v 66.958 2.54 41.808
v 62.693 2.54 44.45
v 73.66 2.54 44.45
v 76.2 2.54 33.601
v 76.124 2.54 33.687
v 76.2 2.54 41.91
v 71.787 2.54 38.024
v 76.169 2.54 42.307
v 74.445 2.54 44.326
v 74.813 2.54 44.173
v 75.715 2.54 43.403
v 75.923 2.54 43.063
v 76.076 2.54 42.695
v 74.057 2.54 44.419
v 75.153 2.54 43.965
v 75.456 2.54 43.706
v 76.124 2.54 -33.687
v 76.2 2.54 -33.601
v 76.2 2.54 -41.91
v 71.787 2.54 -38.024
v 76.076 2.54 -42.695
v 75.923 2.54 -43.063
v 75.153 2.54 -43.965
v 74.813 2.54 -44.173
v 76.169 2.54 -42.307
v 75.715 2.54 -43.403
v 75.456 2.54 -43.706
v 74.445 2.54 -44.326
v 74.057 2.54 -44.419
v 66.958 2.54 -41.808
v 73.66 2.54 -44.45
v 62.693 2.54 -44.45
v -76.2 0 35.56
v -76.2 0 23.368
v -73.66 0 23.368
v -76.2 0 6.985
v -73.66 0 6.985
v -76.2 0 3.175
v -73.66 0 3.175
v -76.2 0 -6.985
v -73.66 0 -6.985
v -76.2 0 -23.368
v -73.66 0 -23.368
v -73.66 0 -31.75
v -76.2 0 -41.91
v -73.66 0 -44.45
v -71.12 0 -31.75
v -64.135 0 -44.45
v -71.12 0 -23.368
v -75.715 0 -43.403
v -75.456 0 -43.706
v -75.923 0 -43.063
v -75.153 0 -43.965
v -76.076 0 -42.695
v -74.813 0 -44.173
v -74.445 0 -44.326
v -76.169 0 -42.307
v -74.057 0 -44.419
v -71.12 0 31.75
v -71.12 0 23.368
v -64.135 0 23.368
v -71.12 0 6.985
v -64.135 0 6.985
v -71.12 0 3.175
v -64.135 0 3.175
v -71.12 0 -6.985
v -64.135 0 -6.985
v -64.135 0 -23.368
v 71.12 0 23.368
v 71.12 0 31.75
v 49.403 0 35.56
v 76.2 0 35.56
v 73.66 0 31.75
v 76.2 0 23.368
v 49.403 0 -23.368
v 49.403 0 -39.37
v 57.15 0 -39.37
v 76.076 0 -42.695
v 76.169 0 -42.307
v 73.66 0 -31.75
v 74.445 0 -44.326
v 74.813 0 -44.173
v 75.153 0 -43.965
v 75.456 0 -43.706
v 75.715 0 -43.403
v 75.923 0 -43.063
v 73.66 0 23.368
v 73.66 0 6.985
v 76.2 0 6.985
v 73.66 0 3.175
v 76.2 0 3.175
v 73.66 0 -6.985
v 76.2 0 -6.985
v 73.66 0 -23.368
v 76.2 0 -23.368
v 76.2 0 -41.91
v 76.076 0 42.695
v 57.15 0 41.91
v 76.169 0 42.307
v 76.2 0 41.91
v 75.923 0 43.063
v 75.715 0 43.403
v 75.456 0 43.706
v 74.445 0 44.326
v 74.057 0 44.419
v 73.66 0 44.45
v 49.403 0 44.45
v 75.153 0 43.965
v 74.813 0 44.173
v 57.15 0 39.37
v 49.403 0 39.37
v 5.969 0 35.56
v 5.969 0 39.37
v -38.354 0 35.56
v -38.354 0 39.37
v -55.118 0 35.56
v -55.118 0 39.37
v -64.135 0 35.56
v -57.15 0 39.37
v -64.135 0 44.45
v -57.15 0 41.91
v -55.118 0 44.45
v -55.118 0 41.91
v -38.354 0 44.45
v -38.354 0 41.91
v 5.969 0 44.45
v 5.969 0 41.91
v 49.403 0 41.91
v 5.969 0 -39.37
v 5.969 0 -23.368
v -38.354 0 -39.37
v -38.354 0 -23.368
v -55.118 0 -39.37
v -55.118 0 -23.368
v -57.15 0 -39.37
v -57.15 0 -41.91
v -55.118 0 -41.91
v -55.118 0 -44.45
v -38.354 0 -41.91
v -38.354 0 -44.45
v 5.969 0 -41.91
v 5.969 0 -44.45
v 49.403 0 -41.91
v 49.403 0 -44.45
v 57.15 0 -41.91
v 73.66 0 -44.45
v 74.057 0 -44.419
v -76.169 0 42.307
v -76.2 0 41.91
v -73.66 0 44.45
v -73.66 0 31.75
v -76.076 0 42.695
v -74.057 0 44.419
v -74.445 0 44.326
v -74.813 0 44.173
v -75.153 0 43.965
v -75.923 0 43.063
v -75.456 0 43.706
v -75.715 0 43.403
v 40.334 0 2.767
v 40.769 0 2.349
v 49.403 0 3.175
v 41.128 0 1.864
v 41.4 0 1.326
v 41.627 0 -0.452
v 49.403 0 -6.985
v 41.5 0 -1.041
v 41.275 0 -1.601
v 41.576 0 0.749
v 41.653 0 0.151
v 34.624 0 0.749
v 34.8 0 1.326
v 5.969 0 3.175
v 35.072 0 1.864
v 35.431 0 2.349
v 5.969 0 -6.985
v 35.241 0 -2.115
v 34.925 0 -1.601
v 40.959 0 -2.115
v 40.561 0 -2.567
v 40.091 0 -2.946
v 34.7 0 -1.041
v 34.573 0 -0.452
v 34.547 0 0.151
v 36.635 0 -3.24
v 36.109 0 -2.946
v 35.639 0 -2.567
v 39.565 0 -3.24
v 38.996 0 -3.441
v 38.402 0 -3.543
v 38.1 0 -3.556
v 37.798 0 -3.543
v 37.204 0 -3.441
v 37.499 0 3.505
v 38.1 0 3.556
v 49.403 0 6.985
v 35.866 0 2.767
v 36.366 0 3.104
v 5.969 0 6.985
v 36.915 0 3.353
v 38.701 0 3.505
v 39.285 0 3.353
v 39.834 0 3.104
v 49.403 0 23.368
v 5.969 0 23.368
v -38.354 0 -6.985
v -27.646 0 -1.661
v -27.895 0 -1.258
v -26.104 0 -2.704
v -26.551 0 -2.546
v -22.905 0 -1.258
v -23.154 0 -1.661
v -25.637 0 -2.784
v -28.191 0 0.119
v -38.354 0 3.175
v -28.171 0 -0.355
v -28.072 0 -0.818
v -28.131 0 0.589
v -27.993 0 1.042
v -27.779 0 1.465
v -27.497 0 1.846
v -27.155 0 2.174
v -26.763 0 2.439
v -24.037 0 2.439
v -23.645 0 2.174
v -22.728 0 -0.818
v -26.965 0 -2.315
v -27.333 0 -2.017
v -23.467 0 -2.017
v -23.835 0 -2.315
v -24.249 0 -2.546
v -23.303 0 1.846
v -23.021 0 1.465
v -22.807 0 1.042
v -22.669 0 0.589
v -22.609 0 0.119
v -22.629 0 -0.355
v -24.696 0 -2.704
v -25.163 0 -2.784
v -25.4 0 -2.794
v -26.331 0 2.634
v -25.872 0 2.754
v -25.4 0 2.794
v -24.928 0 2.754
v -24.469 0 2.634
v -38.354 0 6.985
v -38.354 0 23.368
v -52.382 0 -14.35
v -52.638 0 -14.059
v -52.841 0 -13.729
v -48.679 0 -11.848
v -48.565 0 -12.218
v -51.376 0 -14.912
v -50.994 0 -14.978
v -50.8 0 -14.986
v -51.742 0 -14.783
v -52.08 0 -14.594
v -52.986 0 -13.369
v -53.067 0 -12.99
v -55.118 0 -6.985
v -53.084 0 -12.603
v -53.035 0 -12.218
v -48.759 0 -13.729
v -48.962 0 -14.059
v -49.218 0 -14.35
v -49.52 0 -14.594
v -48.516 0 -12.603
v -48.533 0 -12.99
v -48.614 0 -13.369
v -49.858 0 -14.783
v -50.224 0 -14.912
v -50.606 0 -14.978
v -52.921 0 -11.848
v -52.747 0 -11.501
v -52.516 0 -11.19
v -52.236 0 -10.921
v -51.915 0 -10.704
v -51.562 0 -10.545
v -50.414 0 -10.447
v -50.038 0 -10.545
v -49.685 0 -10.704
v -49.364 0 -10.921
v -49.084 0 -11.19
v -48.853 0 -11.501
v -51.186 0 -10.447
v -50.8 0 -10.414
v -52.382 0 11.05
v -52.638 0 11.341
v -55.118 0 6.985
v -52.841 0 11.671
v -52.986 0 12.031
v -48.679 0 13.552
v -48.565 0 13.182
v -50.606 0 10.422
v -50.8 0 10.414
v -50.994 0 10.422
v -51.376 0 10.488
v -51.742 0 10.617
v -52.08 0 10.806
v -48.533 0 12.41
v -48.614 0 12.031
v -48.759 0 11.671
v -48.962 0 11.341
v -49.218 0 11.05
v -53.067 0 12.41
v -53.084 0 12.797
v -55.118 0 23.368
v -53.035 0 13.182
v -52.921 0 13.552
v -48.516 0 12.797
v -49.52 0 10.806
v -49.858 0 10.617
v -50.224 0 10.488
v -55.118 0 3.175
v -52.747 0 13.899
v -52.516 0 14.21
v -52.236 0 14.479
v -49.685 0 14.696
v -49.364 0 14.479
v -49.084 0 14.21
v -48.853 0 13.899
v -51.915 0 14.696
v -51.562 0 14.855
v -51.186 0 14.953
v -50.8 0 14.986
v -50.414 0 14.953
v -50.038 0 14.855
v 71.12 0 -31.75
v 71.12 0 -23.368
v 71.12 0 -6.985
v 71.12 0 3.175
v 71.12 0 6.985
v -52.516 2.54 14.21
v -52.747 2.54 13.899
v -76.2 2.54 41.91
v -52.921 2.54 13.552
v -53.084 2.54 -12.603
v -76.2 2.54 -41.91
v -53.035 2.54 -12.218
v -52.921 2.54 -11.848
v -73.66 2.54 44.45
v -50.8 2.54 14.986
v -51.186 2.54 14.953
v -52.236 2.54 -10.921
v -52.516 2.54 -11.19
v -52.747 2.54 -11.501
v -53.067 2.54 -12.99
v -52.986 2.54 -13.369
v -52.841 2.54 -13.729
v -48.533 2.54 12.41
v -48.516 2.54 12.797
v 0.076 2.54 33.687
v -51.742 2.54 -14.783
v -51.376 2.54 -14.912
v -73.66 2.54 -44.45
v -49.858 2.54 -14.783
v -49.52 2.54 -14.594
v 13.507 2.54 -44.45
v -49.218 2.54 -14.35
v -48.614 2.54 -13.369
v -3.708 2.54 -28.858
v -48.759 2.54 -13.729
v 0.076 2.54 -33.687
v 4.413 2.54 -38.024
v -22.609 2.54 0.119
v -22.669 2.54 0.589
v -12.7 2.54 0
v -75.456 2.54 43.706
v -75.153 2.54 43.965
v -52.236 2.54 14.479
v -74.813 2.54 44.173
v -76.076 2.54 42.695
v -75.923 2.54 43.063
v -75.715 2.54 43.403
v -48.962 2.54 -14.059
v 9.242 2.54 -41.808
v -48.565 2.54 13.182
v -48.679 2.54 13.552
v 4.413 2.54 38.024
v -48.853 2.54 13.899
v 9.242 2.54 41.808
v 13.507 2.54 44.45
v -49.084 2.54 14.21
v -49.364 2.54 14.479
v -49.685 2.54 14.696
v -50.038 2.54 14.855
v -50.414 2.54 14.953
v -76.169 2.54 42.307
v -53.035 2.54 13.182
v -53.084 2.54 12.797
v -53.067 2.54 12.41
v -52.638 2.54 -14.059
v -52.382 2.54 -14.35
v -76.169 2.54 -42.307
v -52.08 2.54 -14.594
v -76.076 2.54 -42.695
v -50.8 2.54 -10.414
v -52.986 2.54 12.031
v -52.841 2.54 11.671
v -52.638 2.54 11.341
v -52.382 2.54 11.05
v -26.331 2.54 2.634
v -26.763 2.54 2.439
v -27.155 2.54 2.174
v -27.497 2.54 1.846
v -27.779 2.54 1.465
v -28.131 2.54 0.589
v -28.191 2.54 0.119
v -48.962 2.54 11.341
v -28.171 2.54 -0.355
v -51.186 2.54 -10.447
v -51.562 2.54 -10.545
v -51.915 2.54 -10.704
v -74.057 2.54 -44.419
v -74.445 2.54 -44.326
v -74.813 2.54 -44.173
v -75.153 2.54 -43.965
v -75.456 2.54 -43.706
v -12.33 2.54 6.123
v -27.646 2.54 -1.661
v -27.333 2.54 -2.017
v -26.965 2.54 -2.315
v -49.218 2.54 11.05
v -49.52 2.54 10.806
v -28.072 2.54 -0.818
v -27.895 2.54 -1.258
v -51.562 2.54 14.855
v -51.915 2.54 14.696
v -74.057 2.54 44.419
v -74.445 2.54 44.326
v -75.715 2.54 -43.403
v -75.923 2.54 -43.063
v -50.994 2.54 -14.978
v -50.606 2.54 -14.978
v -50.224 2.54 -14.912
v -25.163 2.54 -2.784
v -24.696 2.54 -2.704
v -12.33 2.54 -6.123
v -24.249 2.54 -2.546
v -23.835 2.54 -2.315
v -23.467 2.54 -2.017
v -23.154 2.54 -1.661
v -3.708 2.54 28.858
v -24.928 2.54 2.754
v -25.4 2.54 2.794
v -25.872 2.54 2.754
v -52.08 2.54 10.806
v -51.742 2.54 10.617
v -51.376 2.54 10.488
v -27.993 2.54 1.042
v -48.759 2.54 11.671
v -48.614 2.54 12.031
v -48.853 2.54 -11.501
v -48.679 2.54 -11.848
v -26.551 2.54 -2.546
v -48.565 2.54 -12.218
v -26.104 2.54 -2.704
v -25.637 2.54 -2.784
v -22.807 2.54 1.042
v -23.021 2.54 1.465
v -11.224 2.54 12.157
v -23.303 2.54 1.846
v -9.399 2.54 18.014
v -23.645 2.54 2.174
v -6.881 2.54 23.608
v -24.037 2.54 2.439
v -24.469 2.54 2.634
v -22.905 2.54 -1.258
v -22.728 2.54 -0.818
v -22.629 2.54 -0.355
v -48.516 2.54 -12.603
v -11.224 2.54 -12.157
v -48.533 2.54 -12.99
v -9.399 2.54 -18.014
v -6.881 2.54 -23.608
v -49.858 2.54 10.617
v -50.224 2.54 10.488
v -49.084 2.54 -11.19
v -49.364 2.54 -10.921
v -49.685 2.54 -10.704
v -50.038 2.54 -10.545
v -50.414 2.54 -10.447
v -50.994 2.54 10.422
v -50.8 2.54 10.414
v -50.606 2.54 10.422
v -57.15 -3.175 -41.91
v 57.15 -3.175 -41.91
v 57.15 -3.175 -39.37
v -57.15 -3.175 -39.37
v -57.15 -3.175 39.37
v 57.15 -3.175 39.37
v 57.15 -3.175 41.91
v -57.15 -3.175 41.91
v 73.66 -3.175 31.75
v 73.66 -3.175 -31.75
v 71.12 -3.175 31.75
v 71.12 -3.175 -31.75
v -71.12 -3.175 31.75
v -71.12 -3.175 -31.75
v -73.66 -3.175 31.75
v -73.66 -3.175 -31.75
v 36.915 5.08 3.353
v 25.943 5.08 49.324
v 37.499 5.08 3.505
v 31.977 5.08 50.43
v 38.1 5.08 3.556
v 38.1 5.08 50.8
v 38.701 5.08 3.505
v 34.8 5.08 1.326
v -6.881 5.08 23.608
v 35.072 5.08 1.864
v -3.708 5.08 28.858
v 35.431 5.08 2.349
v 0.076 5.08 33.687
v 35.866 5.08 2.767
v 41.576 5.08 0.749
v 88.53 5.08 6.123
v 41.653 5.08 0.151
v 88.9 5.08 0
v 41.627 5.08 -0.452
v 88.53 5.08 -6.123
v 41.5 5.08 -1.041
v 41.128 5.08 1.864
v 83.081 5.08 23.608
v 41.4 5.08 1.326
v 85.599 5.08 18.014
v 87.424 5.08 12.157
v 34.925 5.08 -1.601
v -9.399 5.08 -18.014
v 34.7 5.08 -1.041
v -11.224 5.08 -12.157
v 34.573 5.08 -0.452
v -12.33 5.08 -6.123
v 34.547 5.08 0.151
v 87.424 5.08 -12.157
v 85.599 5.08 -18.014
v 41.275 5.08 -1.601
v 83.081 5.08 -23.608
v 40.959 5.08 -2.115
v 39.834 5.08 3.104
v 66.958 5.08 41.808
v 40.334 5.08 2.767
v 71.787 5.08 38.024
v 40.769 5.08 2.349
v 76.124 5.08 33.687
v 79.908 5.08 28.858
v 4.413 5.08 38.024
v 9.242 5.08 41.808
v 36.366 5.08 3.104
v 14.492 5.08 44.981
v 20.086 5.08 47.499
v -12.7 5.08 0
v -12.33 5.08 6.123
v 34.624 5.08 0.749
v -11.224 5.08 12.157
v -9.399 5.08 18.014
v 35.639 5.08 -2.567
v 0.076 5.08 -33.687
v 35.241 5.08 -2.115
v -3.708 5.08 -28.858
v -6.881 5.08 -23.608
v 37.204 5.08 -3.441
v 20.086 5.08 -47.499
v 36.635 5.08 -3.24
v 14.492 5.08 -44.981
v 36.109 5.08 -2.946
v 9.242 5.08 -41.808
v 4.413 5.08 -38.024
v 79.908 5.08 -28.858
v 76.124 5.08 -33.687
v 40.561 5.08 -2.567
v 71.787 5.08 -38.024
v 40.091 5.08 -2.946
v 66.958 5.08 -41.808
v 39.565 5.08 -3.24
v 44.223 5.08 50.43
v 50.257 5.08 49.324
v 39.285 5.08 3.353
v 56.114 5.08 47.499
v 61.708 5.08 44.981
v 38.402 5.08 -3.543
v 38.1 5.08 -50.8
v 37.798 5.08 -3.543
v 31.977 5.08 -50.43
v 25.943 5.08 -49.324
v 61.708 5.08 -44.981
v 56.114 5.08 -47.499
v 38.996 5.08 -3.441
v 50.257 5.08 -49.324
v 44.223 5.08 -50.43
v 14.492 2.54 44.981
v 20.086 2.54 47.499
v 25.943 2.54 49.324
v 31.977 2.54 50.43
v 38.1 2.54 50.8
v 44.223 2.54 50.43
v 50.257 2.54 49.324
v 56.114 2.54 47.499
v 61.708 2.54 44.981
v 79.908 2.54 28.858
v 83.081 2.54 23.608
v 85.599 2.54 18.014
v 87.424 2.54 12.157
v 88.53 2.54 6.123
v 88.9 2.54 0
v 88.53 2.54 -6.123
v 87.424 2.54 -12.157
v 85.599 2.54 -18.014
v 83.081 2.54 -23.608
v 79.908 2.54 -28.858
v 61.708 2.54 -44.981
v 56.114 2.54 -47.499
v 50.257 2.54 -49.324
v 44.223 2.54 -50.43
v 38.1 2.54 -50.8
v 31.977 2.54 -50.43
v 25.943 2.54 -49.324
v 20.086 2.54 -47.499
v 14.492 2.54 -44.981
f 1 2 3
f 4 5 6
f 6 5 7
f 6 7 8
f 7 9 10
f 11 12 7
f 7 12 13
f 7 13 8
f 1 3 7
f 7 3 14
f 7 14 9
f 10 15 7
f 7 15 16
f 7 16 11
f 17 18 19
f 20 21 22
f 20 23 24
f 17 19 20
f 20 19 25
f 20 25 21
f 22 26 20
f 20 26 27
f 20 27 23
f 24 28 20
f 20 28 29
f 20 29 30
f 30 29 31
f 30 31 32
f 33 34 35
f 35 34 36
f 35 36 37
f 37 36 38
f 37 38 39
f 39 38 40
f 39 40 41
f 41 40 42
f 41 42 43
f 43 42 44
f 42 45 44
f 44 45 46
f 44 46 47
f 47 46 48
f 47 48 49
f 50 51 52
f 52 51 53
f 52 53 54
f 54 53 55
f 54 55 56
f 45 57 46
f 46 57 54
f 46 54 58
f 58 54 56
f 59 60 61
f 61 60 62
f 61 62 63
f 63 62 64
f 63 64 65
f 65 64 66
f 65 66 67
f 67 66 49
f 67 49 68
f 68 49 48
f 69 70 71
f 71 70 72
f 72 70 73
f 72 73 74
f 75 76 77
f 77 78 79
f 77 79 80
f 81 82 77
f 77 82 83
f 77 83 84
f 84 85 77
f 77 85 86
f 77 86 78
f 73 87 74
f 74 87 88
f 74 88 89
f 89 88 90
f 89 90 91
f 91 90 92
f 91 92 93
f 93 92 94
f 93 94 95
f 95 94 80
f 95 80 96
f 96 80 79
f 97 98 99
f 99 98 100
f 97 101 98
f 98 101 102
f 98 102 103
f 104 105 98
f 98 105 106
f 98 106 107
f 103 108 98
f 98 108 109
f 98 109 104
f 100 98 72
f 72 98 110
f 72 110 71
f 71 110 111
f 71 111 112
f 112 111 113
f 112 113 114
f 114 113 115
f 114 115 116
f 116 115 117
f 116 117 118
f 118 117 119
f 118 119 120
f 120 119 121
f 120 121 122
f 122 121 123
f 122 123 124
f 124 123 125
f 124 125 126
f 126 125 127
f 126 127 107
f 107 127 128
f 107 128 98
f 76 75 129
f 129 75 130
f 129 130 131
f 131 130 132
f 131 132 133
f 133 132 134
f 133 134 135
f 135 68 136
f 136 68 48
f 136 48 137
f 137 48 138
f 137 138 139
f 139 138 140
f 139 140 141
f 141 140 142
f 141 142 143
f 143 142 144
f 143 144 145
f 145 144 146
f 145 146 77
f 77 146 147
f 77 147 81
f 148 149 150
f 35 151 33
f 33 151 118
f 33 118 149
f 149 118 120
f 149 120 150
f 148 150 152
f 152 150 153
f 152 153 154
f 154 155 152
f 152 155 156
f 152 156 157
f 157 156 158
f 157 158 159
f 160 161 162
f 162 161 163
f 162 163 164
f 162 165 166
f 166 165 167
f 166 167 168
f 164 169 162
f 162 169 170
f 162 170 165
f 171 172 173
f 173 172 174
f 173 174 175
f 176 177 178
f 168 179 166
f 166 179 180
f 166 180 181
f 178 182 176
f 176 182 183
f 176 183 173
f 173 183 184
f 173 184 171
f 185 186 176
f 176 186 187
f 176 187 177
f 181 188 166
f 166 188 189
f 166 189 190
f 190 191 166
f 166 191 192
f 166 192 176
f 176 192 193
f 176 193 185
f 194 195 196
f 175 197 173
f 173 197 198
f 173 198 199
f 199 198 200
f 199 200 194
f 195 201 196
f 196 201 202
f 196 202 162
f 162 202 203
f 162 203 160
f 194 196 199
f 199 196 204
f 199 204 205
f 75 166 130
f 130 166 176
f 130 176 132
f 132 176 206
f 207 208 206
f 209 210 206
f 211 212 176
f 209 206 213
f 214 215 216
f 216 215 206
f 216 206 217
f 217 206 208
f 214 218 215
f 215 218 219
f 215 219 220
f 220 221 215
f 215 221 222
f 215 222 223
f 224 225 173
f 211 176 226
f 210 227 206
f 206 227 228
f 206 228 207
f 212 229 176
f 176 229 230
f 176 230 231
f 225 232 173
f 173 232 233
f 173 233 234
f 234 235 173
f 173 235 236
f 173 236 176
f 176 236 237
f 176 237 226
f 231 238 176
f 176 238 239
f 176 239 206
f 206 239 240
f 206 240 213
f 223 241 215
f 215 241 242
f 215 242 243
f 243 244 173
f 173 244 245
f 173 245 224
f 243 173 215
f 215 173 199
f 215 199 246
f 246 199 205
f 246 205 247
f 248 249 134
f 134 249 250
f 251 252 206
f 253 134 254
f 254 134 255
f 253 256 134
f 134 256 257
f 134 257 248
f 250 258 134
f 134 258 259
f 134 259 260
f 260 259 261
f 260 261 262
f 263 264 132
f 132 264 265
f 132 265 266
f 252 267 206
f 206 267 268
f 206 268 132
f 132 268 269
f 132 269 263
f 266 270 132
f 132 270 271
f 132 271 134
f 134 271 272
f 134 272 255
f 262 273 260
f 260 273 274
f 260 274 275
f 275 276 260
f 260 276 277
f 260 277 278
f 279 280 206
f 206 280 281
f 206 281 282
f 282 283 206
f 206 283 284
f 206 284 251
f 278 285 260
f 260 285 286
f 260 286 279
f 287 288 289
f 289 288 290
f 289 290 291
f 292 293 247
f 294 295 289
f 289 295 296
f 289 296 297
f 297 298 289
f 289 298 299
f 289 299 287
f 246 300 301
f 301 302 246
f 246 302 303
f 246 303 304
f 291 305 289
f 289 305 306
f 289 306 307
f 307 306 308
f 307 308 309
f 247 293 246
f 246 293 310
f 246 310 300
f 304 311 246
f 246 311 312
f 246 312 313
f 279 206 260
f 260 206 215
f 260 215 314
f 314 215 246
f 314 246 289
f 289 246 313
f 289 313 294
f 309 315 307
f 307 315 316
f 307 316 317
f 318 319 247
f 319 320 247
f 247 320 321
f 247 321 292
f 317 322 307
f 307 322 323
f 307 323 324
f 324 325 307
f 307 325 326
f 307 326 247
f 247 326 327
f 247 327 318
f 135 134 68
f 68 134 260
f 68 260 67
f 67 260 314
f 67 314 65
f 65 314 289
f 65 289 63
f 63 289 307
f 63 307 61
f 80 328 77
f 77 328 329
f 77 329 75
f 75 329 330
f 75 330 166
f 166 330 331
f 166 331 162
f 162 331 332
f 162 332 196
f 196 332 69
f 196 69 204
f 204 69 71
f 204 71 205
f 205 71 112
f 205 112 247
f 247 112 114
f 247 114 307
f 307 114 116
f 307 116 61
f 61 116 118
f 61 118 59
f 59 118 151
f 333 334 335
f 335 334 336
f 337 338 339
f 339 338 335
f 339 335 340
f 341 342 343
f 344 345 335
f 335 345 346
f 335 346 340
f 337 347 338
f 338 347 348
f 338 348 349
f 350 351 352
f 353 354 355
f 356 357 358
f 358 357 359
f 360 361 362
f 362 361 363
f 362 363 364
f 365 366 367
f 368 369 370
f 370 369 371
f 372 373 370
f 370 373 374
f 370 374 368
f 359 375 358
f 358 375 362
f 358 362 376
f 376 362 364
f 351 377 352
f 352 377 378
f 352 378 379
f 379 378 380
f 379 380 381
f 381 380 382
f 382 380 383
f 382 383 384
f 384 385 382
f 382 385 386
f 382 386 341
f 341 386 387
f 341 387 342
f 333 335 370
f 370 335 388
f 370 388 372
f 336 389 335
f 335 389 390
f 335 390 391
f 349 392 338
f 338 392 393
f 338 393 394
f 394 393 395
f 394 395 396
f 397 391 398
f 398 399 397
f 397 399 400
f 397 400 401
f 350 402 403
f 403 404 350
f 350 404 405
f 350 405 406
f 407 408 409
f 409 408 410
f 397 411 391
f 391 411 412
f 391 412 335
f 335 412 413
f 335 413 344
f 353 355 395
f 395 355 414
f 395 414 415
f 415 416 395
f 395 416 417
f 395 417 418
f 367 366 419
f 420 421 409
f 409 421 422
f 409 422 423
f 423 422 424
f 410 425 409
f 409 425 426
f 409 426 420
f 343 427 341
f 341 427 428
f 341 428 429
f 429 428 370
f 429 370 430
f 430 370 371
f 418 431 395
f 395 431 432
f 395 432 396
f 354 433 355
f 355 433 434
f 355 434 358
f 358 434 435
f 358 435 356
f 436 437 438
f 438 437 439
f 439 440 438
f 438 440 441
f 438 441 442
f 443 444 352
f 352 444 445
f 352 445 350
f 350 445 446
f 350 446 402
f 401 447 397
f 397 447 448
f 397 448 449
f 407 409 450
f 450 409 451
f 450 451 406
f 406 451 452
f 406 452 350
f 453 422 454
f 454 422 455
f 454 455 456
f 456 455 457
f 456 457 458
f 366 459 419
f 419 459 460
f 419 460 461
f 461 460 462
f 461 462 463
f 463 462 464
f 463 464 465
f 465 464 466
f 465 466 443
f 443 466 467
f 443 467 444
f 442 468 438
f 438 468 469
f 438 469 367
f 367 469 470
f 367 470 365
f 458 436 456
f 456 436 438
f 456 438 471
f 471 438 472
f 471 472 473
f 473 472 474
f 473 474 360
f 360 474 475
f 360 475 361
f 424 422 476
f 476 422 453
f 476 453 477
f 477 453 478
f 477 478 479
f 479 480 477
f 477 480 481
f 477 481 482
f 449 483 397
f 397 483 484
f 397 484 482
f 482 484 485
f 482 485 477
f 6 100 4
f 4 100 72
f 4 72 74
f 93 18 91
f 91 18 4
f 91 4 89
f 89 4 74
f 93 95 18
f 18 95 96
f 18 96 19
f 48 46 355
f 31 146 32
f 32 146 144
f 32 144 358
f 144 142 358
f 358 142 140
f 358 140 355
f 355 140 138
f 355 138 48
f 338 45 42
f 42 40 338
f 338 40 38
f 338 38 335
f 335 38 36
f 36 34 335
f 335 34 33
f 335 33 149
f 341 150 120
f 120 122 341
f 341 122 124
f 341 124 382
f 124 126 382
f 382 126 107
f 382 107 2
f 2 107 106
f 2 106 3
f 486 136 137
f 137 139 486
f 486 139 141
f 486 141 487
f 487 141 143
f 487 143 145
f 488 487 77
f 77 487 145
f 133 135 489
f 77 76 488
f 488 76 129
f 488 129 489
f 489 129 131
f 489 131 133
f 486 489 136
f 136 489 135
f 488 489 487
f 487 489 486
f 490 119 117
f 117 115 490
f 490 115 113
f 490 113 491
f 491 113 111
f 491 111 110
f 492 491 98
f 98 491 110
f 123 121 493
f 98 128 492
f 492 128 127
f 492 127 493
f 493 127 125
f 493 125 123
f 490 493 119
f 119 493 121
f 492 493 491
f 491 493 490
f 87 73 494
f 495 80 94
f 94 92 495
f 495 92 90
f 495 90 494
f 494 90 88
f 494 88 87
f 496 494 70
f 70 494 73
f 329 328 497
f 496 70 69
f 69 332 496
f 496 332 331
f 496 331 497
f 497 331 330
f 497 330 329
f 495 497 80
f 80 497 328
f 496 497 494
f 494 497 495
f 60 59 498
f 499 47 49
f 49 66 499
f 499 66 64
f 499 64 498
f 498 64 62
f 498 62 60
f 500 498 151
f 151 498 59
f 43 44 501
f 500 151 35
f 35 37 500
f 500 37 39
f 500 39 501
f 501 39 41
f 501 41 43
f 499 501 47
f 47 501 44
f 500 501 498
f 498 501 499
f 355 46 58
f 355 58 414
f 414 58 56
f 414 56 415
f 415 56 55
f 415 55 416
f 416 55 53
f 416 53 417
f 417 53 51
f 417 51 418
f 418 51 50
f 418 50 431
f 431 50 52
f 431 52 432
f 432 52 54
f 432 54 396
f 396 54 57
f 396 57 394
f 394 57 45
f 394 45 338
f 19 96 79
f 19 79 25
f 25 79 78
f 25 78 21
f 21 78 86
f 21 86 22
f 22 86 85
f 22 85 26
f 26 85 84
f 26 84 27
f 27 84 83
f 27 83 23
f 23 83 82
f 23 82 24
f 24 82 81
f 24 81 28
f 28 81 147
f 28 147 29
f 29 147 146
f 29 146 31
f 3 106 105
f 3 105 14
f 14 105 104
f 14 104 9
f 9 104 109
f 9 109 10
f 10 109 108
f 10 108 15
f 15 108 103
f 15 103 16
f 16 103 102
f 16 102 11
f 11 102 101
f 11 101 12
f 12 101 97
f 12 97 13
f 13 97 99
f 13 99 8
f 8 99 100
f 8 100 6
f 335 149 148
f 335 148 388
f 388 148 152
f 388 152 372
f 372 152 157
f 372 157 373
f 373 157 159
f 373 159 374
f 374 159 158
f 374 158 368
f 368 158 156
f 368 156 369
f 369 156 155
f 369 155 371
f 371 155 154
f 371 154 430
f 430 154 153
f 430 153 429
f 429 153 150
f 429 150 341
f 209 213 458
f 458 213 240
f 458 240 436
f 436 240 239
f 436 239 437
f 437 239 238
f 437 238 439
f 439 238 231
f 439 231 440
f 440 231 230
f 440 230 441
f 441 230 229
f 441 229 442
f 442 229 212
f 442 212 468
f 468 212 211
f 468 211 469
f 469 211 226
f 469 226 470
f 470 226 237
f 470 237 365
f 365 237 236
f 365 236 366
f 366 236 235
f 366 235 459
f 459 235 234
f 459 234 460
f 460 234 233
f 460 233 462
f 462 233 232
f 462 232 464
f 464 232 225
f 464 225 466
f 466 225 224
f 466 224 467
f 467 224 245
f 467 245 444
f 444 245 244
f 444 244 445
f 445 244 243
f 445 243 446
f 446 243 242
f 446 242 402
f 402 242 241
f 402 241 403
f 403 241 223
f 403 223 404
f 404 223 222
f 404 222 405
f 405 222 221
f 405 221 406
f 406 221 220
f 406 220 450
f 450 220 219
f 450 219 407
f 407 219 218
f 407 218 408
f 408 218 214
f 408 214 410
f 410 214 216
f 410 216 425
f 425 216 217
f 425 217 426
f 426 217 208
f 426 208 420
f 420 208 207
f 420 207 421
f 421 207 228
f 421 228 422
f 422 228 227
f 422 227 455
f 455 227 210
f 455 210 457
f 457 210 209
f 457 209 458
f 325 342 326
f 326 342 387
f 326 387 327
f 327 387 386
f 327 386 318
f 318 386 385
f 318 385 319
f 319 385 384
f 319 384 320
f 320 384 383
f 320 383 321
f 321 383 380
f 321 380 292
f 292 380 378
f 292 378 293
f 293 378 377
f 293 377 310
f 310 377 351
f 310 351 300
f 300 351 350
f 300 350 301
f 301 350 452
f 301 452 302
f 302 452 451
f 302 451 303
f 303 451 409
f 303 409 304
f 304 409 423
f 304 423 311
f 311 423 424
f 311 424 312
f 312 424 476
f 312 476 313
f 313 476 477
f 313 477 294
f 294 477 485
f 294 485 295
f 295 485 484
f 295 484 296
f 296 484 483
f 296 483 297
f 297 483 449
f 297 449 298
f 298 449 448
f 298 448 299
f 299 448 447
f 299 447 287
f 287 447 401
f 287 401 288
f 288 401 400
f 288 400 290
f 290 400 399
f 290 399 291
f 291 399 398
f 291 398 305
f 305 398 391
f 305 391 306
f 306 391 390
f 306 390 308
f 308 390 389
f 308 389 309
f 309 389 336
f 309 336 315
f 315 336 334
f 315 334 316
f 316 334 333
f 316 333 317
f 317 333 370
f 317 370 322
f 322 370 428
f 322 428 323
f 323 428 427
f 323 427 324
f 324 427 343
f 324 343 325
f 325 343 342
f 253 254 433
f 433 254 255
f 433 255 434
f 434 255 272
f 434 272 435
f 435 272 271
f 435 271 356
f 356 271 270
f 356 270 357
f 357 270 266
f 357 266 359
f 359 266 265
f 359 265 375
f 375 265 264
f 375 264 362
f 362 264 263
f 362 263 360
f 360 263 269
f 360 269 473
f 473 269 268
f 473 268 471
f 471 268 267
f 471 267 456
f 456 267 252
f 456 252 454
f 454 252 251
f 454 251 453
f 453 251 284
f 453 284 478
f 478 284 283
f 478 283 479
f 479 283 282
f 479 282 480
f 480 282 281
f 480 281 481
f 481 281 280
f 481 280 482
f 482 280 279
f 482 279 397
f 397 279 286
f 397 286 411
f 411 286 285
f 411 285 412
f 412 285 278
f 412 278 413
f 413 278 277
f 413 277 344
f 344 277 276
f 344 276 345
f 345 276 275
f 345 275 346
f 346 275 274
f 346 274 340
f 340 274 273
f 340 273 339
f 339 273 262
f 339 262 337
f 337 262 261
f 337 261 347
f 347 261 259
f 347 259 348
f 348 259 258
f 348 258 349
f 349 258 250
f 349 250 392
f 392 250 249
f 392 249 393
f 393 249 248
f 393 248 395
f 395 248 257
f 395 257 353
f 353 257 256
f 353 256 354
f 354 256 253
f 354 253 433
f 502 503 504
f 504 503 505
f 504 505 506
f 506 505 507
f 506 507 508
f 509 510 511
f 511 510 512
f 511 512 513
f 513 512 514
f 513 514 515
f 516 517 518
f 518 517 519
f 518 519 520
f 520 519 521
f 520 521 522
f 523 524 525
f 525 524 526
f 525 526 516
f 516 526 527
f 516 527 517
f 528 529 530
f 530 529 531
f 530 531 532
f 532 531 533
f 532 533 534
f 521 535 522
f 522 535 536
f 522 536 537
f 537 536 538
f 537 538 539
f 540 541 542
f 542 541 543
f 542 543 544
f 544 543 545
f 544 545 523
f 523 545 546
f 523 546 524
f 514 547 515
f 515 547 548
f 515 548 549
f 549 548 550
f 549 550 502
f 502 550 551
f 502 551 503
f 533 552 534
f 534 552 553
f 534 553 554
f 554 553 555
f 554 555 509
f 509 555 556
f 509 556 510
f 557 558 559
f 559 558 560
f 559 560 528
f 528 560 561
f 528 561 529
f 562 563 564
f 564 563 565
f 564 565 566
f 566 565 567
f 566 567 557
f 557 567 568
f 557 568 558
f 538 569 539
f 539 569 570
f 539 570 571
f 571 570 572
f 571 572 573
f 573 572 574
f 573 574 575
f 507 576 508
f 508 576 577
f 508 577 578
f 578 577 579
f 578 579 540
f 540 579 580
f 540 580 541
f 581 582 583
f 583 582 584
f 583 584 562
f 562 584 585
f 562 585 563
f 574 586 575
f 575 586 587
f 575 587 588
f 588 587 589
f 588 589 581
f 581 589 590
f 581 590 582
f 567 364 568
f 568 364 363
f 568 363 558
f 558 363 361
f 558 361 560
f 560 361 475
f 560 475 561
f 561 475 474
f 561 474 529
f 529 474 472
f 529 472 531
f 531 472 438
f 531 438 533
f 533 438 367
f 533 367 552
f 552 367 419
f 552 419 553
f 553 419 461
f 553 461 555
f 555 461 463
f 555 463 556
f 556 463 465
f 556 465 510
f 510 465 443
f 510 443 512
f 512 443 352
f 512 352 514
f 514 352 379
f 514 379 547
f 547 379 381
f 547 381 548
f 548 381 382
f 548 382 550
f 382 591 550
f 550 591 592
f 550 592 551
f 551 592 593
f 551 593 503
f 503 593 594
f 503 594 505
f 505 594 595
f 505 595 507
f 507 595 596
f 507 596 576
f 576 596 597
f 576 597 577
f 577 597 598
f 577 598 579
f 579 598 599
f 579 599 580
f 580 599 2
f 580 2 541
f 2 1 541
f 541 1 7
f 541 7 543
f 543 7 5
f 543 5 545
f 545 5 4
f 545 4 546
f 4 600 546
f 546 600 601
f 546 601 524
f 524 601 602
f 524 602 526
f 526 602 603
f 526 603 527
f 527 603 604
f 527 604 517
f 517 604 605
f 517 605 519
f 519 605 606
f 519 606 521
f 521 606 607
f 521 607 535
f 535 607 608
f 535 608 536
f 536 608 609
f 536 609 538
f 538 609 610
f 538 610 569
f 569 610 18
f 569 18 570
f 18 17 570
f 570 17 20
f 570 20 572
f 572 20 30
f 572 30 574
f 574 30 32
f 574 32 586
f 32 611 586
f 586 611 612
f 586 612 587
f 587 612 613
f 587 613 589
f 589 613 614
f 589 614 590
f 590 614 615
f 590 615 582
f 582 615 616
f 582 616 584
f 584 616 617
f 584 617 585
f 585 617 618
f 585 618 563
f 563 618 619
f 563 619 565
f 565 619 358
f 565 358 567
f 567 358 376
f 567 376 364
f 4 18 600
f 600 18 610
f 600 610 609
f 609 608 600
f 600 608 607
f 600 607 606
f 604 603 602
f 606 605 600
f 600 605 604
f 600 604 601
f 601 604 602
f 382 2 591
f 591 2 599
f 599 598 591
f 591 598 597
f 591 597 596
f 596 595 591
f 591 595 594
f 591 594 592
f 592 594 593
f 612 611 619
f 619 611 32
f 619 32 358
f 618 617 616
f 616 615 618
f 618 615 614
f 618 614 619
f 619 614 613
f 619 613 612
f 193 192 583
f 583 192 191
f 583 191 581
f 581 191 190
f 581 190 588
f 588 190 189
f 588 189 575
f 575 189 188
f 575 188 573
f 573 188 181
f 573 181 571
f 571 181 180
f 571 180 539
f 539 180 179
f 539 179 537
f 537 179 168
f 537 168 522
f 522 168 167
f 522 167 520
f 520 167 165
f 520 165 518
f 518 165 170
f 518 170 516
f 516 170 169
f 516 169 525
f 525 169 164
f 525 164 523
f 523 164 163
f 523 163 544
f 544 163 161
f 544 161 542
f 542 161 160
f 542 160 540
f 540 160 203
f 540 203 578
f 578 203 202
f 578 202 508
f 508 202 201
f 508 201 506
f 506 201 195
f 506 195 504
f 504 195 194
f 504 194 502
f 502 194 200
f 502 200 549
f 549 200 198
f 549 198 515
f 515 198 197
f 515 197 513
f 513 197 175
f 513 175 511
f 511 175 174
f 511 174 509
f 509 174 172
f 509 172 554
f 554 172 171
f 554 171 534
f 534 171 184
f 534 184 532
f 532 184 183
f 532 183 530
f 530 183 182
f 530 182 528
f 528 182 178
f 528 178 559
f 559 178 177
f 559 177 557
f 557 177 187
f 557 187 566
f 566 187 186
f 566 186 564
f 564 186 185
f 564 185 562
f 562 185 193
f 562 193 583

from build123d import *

# Parameters (mm, degrees)
SKETCH1_W           = 152.4
SKETCH1_H           = 88.9
BOSS_EXTRUDE1_DEPTH = 2.54
SKETCH2_W           = 2.54
SKETCH2_H           = 63.5
SKETCH2_W_2         = 114.3
SKETCH2_H_2         = 2.54
BOSS_EXTRUDE2_DEPTH = 3.175
FILLET1_R           = 2.54
SKETCH3_R           = 3.49631
SKETCH3_R_2         = 2.794
CUT_EXTRUDE1_DEPTH  = 2.54
SKETCH5_R           = 2.286
CUT_EXTRUDE2_DEPTH  = 89.401944125
SKETCH7_R           = 50.8
BOSS_EXTRUDE3_DEPTH = 2.54
SKETCH8_R           = 3.556
CUT_EXTRUDE3_DEPTH  = 103.722904092


with BuildPart() as part:
    # Sketch1 → Boss-Extrude1 (new body)
    with BuildSketch(Plane(origin=(0, 0, 0), x_dir=(1, 0, 0), z_dir=(0, 1, 0))):
        Rectangle(SKETCH1_W, SKETCH1_H)
    extrude(amount=BOSS_EXTRUDE1_DEPTH)

    # Sketch2 → Boss-Extrude2 (add)
    with BuildSketch(Plane.XZ):
        with Locations((-72.39, 0)):
            Rectangle(SKETCH2_W, SKETCH2_H)
        with Locations((72.39, 0)):
            Rectangle(SKETCH2_W, SKETCH2_H)
        with Locations((0, 40.64)):
            Rectangle(SKETCH2_W_2, SKETCH2_H_2)
        with Locations((0, -40.64)):
            Rectangle(SKETCH2_W_2, SKETCH2_H_2)
    extrude(amount=BOSS_EXTRUDE2_DEPTH)

    # Fillet1
    fillet1_edges = [part.edges().sort_by_distance(p)[0] for p in [
        (76.2, 1.27, 44.45),
        (-76.2, 1.27, 44.45),
        (-76.2, 1.27, -44.45),
        (76.2, 1.27, -44.45),
    ]]
    fillet(fillet1_edges, radius=FILLET1_R)

    # Sketch3 → Cut-Extrude1 (cut)
    with BuildSketch(Plane(origin=(0, 2.54, 0), x_dir=(1, 0, 0), z_dir=(0, 1, 0))):
        with Locations(Location((38.1, 0, 0), (0, 0, 270))):
            Circle(SKETCH3_R)
        with Locations(Location((-25.4, 0, 0), (0, 0, 270))):
            Circle(SKETCH3_R_2)
    extrude(amount=-CUT_EXTRUDE1_DEPTH, mode=Mode.SUBTRACT)

    # Sketch5 → Cut-Extrude2 (cut, through all)
    with BuildSketch(Plane(origin=(0, 2.54, 0), x_dir=(1, 0, 0), z_dir=(0, 1, 0))):
        with Locations(Location((-50.8, 12.7, 0), (0, 0, 270))):
            Circle(SKETCH5_R)
        with Locations(Location((-50.8, -12.7, 0), (0, 0, 90))):
            Circle(SKETCH5_R)
    extrude(amount=-CUT_EXTRUDE2_DEPTH, mode=Mode.SUBTRACT)

    # Sketch7 → Boss-Extrude3 (add)
    with BuildSketch(Plane(origin=(0, 2.54, 0), x_dir=(1, 0, 0), z_dir=(0, 1, 0))):
        with Locations(Location((38.1, 0, 0), (0, 0, 61.044975628))):
            Circle(SKETCH7_R)
    extrude(amount=BOSS_EXTRUDE3_DEPTH)

    # Sketch8 → Cut-Extrude3 (cut, through all)
    with BuildSketch(Plane(origin=(0, 5.08, 0), x_dir=(1, 0, 0), z_dir=(0, 1, 0))):
        with Locations(Location((38.1, 0, 0), (0, 0, 270))):
            Circle(SKETCH8_R)
    extrude(amount=-CUT_EXTRUDE3_DEPTH, mode=Mode.SUBTRACT)


solid = part.part
